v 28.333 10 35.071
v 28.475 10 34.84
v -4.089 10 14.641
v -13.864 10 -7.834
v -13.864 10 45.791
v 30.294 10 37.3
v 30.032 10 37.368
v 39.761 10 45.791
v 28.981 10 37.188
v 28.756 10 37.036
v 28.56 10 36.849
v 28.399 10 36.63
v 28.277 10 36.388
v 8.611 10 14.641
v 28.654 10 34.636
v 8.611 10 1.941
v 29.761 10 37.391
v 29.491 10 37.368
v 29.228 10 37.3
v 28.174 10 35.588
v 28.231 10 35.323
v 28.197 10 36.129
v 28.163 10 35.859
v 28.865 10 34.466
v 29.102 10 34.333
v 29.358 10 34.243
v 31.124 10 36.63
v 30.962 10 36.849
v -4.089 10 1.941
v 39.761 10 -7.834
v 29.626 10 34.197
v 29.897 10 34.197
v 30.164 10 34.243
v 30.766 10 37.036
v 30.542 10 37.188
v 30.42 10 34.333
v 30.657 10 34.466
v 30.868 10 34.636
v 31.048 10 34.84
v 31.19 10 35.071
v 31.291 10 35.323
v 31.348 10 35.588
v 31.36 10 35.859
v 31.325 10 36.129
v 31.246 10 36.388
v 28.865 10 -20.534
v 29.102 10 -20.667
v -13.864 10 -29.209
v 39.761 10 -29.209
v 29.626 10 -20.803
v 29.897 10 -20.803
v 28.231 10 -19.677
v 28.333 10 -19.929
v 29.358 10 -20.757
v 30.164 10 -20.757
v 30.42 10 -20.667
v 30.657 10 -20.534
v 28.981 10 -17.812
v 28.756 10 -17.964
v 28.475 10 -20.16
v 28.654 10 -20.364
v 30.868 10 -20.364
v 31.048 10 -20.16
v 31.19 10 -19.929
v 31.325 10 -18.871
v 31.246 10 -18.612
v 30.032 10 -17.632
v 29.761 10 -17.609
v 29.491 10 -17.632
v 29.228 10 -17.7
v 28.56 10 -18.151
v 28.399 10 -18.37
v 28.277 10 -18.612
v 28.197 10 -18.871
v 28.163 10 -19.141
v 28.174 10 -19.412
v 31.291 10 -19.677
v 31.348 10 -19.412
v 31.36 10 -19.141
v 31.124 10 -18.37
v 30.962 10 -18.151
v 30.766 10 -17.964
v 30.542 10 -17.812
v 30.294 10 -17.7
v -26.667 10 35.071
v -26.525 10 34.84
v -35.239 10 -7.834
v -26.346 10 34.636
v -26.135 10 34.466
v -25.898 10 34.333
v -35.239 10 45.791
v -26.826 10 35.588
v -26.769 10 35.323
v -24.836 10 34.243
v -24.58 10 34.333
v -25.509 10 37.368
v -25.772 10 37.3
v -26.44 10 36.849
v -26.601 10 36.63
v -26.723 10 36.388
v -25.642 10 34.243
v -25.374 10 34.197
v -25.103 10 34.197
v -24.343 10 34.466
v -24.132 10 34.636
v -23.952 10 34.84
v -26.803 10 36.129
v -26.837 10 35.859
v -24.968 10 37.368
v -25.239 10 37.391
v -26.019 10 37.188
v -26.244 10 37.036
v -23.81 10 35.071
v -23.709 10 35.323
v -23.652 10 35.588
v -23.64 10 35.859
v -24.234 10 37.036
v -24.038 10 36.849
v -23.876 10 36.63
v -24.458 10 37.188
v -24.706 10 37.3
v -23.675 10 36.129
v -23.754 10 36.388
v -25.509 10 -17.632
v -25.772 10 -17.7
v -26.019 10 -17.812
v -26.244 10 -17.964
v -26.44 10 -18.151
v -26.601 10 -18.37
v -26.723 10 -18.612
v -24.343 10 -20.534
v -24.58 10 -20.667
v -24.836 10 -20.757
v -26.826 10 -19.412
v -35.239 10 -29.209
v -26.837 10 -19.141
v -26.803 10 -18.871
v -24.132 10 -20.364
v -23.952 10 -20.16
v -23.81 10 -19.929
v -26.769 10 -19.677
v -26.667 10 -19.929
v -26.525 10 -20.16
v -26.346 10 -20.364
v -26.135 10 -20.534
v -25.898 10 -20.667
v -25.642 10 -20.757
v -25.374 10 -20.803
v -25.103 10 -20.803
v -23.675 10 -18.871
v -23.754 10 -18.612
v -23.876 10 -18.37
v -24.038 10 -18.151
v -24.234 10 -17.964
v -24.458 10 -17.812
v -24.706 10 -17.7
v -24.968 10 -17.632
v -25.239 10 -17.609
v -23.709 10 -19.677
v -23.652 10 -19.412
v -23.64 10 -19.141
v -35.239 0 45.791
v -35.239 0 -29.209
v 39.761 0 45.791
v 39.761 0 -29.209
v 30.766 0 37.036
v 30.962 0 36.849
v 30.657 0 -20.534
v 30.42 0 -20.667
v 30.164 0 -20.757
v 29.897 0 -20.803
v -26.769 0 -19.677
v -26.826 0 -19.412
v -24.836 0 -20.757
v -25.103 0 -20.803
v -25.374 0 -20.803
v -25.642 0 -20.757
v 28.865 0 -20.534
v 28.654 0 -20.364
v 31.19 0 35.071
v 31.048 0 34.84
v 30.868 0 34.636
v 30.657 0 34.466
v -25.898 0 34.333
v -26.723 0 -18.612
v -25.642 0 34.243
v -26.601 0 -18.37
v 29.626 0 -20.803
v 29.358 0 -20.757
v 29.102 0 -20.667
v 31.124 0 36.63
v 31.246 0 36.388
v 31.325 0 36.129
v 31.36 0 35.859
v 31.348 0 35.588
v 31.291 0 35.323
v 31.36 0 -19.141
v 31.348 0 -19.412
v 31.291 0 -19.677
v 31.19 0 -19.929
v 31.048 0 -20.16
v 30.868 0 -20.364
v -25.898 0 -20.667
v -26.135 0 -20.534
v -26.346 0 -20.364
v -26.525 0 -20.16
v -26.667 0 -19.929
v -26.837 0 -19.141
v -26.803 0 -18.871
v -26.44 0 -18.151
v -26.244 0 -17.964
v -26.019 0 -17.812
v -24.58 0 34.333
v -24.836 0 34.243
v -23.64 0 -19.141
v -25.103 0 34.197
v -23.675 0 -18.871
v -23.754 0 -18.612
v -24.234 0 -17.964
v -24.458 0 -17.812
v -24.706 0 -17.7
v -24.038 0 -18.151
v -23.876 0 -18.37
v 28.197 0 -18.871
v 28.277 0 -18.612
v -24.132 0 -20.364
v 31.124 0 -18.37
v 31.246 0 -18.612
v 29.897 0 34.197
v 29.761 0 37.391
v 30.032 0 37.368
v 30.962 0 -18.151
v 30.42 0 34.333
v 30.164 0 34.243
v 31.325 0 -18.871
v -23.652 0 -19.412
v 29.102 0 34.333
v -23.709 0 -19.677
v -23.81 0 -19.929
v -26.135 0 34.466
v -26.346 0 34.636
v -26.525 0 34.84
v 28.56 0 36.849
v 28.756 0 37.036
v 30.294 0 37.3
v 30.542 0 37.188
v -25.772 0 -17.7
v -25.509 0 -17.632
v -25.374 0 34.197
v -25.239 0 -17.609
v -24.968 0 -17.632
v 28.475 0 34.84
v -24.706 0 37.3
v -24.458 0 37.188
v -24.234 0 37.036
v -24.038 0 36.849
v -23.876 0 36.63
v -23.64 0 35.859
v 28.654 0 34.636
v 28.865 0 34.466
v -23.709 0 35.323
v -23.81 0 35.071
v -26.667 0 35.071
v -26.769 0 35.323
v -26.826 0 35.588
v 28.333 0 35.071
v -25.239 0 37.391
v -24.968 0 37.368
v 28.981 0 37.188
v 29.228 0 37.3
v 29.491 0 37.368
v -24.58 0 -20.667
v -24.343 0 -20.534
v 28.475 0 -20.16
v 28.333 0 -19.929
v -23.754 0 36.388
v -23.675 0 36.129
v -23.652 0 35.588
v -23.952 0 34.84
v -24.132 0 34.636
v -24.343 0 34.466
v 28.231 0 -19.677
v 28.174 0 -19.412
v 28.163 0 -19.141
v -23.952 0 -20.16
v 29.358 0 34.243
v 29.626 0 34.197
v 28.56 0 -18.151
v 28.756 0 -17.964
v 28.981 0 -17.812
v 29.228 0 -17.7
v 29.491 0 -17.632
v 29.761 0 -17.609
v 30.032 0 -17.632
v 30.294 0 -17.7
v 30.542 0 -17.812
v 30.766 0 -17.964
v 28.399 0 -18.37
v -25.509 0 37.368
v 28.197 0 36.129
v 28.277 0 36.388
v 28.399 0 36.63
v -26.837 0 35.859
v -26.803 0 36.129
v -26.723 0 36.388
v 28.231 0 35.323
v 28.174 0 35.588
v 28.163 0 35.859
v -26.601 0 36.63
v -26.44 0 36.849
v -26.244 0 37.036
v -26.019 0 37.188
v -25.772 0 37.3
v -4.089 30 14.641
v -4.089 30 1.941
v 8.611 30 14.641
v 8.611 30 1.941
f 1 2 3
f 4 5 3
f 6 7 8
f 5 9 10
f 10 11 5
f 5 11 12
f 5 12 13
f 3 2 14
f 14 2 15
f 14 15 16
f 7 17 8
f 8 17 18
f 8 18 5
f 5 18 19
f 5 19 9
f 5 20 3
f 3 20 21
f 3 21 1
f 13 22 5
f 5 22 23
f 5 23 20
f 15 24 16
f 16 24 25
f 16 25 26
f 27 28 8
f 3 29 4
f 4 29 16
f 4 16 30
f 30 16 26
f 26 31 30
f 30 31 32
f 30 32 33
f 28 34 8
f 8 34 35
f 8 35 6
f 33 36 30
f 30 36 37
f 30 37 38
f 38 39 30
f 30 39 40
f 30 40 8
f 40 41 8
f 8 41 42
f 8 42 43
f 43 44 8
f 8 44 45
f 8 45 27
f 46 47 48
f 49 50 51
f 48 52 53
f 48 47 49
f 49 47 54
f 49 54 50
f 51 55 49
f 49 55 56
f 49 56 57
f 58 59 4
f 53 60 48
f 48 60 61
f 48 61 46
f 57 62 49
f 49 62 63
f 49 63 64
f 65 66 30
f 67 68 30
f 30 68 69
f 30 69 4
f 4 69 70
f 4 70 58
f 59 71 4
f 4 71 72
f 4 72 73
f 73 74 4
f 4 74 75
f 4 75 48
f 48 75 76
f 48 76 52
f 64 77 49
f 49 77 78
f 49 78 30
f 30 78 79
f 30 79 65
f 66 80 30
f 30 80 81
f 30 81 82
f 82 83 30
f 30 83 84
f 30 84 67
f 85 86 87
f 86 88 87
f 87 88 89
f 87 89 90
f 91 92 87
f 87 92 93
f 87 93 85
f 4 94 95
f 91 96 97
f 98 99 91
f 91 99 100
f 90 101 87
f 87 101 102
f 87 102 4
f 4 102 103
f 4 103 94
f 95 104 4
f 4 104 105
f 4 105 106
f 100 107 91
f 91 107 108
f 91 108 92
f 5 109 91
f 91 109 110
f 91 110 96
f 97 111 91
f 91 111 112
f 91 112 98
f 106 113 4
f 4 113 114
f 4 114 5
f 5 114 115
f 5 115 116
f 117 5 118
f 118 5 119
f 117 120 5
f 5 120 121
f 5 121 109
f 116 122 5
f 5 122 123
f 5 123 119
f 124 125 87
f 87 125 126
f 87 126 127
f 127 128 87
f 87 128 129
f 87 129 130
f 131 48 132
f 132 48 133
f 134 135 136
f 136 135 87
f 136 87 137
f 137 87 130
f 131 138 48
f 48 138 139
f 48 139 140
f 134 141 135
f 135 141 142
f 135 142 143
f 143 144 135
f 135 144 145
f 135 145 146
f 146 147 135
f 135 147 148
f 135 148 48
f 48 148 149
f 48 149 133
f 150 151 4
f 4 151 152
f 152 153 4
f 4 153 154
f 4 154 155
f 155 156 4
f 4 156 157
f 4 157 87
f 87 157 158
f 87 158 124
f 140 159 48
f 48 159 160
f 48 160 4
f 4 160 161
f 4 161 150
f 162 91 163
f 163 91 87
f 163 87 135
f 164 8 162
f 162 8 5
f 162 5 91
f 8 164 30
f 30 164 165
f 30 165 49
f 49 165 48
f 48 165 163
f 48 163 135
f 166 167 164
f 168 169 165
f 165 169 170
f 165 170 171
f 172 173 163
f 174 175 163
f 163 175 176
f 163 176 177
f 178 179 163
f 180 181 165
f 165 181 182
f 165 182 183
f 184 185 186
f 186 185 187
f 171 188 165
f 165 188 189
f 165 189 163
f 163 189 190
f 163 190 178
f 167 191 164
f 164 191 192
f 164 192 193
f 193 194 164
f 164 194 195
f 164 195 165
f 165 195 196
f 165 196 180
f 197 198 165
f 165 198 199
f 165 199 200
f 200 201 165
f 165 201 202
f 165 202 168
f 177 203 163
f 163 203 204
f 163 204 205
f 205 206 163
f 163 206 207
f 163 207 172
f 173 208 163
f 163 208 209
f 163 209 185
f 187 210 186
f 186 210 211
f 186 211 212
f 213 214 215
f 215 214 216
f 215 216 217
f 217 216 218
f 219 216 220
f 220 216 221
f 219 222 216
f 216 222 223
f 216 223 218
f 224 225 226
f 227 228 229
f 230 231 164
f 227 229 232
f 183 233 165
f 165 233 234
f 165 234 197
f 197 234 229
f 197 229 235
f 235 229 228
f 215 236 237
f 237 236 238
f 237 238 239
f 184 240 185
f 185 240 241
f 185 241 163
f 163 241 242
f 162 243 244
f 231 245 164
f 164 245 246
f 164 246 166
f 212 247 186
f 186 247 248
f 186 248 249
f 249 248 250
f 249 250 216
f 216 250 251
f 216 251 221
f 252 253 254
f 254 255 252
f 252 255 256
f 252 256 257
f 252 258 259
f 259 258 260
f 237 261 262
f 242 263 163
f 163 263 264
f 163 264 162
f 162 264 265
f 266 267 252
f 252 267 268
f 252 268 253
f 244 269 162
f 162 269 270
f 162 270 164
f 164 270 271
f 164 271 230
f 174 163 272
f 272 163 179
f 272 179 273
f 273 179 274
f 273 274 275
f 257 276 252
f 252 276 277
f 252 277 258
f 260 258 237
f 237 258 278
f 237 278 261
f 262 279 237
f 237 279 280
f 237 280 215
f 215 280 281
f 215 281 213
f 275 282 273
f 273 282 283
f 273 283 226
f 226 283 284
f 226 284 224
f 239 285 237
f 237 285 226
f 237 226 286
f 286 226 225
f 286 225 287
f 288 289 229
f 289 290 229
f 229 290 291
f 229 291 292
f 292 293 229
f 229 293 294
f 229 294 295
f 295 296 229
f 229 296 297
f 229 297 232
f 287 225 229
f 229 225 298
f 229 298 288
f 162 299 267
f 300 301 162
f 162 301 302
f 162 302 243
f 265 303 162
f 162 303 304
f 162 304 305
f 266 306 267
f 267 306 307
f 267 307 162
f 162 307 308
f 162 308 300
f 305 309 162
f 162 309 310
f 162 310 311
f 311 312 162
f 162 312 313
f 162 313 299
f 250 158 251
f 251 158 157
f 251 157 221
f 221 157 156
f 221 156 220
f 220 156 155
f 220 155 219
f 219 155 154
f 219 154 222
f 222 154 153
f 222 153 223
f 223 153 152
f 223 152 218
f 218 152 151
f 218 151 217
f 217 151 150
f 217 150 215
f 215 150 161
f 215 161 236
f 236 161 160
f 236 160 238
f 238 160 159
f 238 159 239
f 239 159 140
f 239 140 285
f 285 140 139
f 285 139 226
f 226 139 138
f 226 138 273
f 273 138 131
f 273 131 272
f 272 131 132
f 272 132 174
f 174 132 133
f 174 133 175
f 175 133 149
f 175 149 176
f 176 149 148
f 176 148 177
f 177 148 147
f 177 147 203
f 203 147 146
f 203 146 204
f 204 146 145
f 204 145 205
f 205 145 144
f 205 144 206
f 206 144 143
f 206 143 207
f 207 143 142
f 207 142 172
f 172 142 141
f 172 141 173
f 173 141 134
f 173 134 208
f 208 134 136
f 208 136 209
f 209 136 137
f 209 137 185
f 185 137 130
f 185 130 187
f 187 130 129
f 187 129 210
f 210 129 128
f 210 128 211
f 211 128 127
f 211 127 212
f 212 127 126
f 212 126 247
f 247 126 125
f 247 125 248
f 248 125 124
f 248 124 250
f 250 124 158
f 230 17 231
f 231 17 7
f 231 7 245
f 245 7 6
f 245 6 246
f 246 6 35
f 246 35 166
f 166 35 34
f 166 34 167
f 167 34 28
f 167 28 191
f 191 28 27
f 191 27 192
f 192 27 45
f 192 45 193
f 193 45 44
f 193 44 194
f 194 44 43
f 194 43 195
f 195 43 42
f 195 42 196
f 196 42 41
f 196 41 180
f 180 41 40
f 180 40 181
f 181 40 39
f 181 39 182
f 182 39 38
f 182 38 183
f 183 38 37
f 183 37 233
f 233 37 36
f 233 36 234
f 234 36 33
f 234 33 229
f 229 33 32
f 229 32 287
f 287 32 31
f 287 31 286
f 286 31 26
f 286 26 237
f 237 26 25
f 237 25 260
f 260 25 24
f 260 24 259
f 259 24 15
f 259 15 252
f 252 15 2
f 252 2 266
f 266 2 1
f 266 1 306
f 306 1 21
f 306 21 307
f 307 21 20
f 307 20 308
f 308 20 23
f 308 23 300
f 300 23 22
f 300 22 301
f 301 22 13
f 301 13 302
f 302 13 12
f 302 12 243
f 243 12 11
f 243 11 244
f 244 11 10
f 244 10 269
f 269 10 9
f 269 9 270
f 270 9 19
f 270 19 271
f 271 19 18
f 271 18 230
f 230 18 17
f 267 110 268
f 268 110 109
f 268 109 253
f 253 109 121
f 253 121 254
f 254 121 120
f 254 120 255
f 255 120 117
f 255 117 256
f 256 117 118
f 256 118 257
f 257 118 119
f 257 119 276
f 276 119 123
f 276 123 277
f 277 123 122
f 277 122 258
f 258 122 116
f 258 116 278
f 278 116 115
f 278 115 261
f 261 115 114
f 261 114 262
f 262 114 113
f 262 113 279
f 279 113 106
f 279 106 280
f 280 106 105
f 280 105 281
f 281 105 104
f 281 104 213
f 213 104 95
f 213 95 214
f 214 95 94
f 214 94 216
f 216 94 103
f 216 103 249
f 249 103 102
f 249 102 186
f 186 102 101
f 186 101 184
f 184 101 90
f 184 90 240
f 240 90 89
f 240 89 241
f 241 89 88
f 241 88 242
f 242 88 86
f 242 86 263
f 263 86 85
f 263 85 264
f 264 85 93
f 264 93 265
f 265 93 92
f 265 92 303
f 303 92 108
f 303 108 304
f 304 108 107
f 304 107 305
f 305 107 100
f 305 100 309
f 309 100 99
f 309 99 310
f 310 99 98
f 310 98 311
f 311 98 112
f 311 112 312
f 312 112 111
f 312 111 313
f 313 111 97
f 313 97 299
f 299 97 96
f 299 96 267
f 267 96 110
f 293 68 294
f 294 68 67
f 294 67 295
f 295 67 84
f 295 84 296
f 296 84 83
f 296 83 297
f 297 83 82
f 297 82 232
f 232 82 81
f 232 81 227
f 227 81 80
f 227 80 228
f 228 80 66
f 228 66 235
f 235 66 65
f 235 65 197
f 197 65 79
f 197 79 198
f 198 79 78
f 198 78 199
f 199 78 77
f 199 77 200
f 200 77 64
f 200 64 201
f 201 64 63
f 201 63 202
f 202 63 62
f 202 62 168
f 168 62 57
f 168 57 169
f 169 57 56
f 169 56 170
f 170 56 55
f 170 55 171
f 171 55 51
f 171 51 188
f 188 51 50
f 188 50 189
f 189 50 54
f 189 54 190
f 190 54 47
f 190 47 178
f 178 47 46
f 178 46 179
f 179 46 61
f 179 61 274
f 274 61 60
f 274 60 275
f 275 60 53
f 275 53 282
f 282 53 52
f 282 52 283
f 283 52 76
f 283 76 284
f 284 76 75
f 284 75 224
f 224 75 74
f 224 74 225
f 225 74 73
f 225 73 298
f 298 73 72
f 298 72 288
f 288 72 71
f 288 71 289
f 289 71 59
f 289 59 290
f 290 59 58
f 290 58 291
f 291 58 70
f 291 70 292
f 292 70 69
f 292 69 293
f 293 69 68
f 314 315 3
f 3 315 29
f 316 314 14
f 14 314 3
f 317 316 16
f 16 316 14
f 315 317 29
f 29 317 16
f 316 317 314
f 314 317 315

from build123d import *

# Parameters (mm, degrees)
SKETCH_1_W          = 75
SKETCH_1_H          = 75
EXTRUDE_1_DEPTH     = 10
SKETCH_2_R          = 1.6
CUT_EXTRUDE_1_DEPTH = 10
SKETCH_3_W          = 12.7
SKETCH_3_H          = 12.7
EXTRUDE_2_DEPTH     = 20


with BuildPart() as part:
    # Эскиз1 → Бобышка-Вытянуть1 (new body)
    with BuildSketch(Plane(origin=(0, 0, 0), x_dir=(1, 0, 0), z_dir=(0, 1, 0))):
        with Locations((2.261306533, -8.291457286)):
            Rectangle(SKETCH_1_W, SKETCH_1_H)
    extrude(amount=EXTRUDE_1_DEPTH)

    # Эскиз2 → Вырез-Вытянуть1 (cut)
    with BuildSketch(Plane(origin=(0, 10, 0), x_dir=(1, 0, 0), z_dir=(0, 1, 0))):
        with Locations(Location((-25.238693467, 19.208542714, 0), (0, 0, 270))):
            Circle(SKETCH_2_R)
        with Locations(Location((29.761306533, 19.208542714, 0), (0, 0, 270))):
            Circle(SKETCH_2_R)
        with Locations(Location((-25.238693467, -35.791457286, 0), (0, 0, 270))):
            Circle(SKETCH_2_R)
        with Locations(Location((29.761306533, -35.791457286, 0), (0, 0, 270))):
            Circle(SKETCH_2_R)
    extrude(amount=-CUT_EXTRUDE_1_DEPTH, mode=Mode.SUBTRACT)

    # Эскиз3 → Бобышка-Вытянуть2 (add)
    with BuildSketch(Plane(origin=(0, 10, 0), x_dir=(1, 0, 0), z_dir=(0, 1, 0))):
        with Locations((2.261306533, -8.291457286)):
            Rectangle(SKETCH_3_W, SKETCH_3_H)
    extrude(amount=EXTRUDE_2_DEPTH)


solid = part.part
